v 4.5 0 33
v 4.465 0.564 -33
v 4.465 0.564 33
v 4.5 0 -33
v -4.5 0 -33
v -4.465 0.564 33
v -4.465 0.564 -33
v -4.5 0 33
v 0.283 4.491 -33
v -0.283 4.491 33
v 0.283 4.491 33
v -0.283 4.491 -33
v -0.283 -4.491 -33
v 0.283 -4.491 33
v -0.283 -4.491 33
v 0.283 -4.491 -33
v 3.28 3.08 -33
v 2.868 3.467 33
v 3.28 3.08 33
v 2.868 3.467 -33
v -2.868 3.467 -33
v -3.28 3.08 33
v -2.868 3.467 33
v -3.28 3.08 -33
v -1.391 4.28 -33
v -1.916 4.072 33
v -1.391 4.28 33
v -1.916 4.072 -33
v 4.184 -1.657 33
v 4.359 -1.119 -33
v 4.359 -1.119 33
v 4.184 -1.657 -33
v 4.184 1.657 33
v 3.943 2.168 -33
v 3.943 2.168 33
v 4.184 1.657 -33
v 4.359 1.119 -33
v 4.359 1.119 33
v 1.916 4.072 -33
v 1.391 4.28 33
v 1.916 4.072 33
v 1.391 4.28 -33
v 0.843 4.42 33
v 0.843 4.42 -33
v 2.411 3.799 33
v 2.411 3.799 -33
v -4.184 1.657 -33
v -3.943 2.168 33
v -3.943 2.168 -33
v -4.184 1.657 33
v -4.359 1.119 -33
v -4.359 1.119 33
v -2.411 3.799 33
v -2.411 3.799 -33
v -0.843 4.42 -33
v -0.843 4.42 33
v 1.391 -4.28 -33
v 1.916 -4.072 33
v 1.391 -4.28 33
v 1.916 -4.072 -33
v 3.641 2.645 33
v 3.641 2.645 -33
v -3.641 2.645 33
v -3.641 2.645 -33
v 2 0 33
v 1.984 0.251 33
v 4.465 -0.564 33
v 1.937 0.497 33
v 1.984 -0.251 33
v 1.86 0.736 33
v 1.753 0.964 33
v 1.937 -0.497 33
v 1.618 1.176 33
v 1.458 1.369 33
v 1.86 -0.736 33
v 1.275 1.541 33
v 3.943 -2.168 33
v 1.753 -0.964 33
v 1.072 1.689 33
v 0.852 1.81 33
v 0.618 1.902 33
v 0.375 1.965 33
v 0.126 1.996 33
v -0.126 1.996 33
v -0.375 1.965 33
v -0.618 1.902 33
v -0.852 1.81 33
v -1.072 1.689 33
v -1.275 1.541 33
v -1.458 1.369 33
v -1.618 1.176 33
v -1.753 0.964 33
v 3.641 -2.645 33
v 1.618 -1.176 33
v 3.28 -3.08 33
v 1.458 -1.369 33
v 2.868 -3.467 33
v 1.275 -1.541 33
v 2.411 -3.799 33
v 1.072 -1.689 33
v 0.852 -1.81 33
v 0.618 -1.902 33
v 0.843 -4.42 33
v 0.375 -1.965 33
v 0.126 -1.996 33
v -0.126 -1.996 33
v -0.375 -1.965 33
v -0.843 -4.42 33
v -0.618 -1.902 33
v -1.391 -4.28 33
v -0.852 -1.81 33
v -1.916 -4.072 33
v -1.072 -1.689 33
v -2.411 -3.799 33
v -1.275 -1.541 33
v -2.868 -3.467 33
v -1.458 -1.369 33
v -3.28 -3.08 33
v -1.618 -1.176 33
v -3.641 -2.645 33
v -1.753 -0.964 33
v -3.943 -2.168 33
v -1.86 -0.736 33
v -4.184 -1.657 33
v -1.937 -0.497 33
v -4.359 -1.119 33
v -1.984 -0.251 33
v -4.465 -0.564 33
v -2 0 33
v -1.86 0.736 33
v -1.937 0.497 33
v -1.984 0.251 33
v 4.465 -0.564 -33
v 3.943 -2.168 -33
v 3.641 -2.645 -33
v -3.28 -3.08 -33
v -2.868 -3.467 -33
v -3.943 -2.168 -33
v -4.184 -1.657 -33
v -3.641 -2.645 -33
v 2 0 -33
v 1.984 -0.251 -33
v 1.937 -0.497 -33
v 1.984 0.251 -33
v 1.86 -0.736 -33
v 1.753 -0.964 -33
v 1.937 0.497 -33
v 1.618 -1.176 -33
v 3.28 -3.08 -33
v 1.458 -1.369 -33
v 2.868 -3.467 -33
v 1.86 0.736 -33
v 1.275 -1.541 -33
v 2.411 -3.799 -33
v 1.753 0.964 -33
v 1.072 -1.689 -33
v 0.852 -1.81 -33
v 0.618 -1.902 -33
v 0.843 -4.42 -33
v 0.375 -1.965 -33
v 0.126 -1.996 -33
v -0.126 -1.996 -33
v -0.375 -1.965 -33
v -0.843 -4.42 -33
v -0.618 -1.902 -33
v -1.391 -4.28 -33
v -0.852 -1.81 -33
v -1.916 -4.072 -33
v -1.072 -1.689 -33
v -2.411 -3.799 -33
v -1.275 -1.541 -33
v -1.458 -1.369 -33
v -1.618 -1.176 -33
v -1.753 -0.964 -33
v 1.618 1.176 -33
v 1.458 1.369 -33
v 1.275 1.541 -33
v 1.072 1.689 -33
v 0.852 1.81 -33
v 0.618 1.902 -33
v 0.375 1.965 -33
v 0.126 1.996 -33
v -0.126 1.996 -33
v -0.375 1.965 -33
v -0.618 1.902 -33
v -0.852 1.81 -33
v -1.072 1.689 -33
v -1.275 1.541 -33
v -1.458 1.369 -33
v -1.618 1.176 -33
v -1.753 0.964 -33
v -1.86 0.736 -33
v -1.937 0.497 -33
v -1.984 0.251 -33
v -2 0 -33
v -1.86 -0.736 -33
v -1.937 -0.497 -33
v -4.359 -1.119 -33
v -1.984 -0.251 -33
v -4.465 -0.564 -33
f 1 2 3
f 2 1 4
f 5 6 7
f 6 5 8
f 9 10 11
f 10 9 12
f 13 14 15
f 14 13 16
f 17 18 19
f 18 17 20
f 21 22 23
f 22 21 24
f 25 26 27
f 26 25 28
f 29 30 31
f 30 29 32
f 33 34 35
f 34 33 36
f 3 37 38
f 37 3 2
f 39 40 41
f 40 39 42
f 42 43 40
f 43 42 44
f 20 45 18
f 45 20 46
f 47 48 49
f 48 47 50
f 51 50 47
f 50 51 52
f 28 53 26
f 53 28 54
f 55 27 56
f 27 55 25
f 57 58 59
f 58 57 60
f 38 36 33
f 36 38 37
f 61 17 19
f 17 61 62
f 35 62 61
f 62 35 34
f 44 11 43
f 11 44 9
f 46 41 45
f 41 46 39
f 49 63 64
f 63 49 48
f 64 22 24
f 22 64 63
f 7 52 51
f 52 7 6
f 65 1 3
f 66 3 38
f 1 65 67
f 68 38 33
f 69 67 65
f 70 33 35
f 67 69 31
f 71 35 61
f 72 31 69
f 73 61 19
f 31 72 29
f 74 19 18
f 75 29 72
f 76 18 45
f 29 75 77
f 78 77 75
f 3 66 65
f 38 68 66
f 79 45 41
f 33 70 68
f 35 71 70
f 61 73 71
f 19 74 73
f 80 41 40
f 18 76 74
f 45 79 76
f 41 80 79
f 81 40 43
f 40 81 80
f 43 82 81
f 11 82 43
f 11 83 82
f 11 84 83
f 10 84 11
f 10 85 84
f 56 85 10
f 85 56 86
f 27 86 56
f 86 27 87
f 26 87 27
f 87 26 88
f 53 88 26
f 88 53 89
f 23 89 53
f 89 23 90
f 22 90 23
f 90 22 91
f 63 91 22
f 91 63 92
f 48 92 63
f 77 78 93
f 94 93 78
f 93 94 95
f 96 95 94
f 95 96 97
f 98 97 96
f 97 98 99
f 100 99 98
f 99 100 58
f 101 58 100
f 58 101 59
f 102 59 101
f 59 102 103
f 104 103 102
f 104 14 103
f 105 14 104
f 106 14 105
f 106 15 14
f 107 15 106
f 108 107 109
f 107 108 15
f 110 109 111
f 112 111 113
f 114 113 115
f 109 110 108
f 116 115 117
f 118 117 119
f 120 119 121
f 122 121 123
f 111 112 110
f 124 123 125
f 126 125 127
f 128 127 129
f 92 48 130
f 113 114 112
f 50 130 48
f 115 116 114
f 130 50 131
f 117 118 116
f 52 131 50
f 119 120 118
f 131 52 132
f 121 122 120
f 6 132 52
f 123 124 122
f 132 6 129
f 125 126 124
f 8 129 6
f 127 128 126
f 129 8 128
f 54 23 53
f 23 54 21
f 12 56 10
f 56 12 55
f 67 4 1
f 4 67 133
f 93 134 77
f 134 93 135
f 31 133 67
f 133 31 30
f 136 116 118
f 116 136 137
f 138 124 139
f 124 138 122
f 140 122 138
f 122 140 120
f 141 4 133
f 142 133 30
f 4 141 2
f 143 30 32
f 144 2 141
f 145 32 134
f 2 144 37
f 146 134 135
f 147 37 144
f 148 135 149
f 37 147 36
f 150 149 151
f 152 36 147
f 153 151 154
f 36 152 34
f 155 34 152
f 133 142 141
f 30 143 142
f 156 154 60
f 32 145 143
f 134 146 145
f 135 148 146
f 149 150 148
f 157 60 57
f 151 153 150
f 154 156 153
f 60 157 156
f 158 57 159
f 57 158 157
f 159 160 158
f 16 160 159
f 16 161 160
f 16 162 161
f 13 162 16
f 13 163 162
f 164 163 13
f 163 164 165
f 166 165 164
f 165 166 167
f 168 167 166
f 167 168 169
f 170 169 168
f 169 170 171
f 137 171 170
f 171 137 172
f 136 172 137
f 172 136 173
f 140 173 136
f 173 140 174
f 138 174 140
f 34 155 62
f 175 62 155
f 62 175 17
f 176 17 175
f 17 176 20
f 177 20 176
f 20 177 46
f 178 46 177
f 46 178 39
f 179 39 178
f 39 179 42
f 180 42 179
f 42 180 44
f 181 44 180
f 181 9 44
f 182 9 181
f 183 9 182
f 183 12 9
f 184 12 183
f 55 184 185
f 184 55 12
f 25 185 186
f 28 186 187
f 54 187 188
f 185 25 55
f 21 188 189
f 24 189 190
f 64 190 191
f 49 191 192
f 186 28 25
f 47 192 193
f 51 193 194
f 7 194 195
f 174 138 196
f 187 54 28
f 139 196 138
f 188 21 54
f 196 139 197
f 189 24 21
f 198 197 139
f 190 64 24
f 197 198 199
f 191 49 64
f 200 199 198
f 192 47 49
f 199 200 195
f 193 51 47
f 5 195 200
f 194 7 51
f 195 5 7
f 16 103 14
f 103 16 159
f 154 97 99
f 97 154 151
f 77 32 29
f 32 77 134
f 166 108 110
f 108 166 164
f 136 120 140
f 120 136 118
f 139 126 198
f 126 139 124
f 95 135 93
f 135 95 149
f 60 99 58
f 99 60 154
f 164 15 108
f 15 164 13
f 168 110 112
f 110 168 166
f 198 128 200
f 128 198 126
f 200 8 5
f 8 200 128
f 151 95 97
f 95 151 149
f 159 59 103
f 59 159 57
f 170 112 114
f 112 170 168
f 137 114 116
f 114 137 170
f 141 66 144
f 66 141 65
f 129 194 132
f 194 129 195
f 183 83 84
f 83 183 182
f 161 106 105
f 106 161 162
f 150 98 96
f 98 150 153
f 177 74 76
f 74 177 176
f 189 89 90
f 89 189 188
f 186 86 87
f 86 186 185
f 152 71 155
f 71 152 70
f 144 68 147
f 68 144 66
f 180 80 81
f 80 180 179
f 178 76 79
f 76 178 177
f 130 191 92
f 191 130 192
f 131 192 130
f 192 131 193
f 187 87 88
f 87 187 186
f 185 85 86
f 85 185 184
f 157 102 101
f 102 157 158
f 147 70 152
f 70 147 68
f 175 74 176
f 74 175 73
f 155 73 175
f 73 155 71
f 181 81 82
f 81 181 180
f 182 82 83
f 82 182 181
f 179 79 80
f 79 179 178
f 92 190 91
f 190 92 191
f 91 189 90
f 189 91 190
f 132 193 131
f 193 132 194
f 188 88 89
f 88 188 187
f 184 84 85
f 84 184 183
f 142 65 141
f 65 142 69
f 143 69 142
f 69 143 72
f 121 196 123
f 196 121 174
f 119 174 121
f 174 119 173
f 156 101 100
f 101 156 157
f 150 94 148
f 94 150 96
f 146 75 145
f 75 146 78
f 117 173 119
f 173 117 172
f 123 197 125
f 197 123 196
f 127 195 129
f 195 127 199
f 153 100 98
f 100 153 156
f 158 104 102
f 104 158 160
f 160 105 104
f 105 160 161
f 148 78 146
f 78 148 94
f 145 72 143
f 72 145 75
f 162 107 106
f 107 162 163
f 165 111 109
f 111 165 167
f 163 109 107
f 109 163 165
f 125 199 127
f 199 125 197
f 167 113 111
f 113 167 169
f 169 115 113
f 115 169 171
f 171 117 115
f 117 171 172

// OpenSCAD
$fn = 50;


difference() {
	union() {
		translate(v = [0, 0, -33.0000000000]) {
			cylinder(h = 66, r = 4.5000000000);
		}
	}
	union() {
		translate(v = [0, 0, -100.0000000000]) {
			cylinder(h = 200, r = 2);
		}
	}
}
